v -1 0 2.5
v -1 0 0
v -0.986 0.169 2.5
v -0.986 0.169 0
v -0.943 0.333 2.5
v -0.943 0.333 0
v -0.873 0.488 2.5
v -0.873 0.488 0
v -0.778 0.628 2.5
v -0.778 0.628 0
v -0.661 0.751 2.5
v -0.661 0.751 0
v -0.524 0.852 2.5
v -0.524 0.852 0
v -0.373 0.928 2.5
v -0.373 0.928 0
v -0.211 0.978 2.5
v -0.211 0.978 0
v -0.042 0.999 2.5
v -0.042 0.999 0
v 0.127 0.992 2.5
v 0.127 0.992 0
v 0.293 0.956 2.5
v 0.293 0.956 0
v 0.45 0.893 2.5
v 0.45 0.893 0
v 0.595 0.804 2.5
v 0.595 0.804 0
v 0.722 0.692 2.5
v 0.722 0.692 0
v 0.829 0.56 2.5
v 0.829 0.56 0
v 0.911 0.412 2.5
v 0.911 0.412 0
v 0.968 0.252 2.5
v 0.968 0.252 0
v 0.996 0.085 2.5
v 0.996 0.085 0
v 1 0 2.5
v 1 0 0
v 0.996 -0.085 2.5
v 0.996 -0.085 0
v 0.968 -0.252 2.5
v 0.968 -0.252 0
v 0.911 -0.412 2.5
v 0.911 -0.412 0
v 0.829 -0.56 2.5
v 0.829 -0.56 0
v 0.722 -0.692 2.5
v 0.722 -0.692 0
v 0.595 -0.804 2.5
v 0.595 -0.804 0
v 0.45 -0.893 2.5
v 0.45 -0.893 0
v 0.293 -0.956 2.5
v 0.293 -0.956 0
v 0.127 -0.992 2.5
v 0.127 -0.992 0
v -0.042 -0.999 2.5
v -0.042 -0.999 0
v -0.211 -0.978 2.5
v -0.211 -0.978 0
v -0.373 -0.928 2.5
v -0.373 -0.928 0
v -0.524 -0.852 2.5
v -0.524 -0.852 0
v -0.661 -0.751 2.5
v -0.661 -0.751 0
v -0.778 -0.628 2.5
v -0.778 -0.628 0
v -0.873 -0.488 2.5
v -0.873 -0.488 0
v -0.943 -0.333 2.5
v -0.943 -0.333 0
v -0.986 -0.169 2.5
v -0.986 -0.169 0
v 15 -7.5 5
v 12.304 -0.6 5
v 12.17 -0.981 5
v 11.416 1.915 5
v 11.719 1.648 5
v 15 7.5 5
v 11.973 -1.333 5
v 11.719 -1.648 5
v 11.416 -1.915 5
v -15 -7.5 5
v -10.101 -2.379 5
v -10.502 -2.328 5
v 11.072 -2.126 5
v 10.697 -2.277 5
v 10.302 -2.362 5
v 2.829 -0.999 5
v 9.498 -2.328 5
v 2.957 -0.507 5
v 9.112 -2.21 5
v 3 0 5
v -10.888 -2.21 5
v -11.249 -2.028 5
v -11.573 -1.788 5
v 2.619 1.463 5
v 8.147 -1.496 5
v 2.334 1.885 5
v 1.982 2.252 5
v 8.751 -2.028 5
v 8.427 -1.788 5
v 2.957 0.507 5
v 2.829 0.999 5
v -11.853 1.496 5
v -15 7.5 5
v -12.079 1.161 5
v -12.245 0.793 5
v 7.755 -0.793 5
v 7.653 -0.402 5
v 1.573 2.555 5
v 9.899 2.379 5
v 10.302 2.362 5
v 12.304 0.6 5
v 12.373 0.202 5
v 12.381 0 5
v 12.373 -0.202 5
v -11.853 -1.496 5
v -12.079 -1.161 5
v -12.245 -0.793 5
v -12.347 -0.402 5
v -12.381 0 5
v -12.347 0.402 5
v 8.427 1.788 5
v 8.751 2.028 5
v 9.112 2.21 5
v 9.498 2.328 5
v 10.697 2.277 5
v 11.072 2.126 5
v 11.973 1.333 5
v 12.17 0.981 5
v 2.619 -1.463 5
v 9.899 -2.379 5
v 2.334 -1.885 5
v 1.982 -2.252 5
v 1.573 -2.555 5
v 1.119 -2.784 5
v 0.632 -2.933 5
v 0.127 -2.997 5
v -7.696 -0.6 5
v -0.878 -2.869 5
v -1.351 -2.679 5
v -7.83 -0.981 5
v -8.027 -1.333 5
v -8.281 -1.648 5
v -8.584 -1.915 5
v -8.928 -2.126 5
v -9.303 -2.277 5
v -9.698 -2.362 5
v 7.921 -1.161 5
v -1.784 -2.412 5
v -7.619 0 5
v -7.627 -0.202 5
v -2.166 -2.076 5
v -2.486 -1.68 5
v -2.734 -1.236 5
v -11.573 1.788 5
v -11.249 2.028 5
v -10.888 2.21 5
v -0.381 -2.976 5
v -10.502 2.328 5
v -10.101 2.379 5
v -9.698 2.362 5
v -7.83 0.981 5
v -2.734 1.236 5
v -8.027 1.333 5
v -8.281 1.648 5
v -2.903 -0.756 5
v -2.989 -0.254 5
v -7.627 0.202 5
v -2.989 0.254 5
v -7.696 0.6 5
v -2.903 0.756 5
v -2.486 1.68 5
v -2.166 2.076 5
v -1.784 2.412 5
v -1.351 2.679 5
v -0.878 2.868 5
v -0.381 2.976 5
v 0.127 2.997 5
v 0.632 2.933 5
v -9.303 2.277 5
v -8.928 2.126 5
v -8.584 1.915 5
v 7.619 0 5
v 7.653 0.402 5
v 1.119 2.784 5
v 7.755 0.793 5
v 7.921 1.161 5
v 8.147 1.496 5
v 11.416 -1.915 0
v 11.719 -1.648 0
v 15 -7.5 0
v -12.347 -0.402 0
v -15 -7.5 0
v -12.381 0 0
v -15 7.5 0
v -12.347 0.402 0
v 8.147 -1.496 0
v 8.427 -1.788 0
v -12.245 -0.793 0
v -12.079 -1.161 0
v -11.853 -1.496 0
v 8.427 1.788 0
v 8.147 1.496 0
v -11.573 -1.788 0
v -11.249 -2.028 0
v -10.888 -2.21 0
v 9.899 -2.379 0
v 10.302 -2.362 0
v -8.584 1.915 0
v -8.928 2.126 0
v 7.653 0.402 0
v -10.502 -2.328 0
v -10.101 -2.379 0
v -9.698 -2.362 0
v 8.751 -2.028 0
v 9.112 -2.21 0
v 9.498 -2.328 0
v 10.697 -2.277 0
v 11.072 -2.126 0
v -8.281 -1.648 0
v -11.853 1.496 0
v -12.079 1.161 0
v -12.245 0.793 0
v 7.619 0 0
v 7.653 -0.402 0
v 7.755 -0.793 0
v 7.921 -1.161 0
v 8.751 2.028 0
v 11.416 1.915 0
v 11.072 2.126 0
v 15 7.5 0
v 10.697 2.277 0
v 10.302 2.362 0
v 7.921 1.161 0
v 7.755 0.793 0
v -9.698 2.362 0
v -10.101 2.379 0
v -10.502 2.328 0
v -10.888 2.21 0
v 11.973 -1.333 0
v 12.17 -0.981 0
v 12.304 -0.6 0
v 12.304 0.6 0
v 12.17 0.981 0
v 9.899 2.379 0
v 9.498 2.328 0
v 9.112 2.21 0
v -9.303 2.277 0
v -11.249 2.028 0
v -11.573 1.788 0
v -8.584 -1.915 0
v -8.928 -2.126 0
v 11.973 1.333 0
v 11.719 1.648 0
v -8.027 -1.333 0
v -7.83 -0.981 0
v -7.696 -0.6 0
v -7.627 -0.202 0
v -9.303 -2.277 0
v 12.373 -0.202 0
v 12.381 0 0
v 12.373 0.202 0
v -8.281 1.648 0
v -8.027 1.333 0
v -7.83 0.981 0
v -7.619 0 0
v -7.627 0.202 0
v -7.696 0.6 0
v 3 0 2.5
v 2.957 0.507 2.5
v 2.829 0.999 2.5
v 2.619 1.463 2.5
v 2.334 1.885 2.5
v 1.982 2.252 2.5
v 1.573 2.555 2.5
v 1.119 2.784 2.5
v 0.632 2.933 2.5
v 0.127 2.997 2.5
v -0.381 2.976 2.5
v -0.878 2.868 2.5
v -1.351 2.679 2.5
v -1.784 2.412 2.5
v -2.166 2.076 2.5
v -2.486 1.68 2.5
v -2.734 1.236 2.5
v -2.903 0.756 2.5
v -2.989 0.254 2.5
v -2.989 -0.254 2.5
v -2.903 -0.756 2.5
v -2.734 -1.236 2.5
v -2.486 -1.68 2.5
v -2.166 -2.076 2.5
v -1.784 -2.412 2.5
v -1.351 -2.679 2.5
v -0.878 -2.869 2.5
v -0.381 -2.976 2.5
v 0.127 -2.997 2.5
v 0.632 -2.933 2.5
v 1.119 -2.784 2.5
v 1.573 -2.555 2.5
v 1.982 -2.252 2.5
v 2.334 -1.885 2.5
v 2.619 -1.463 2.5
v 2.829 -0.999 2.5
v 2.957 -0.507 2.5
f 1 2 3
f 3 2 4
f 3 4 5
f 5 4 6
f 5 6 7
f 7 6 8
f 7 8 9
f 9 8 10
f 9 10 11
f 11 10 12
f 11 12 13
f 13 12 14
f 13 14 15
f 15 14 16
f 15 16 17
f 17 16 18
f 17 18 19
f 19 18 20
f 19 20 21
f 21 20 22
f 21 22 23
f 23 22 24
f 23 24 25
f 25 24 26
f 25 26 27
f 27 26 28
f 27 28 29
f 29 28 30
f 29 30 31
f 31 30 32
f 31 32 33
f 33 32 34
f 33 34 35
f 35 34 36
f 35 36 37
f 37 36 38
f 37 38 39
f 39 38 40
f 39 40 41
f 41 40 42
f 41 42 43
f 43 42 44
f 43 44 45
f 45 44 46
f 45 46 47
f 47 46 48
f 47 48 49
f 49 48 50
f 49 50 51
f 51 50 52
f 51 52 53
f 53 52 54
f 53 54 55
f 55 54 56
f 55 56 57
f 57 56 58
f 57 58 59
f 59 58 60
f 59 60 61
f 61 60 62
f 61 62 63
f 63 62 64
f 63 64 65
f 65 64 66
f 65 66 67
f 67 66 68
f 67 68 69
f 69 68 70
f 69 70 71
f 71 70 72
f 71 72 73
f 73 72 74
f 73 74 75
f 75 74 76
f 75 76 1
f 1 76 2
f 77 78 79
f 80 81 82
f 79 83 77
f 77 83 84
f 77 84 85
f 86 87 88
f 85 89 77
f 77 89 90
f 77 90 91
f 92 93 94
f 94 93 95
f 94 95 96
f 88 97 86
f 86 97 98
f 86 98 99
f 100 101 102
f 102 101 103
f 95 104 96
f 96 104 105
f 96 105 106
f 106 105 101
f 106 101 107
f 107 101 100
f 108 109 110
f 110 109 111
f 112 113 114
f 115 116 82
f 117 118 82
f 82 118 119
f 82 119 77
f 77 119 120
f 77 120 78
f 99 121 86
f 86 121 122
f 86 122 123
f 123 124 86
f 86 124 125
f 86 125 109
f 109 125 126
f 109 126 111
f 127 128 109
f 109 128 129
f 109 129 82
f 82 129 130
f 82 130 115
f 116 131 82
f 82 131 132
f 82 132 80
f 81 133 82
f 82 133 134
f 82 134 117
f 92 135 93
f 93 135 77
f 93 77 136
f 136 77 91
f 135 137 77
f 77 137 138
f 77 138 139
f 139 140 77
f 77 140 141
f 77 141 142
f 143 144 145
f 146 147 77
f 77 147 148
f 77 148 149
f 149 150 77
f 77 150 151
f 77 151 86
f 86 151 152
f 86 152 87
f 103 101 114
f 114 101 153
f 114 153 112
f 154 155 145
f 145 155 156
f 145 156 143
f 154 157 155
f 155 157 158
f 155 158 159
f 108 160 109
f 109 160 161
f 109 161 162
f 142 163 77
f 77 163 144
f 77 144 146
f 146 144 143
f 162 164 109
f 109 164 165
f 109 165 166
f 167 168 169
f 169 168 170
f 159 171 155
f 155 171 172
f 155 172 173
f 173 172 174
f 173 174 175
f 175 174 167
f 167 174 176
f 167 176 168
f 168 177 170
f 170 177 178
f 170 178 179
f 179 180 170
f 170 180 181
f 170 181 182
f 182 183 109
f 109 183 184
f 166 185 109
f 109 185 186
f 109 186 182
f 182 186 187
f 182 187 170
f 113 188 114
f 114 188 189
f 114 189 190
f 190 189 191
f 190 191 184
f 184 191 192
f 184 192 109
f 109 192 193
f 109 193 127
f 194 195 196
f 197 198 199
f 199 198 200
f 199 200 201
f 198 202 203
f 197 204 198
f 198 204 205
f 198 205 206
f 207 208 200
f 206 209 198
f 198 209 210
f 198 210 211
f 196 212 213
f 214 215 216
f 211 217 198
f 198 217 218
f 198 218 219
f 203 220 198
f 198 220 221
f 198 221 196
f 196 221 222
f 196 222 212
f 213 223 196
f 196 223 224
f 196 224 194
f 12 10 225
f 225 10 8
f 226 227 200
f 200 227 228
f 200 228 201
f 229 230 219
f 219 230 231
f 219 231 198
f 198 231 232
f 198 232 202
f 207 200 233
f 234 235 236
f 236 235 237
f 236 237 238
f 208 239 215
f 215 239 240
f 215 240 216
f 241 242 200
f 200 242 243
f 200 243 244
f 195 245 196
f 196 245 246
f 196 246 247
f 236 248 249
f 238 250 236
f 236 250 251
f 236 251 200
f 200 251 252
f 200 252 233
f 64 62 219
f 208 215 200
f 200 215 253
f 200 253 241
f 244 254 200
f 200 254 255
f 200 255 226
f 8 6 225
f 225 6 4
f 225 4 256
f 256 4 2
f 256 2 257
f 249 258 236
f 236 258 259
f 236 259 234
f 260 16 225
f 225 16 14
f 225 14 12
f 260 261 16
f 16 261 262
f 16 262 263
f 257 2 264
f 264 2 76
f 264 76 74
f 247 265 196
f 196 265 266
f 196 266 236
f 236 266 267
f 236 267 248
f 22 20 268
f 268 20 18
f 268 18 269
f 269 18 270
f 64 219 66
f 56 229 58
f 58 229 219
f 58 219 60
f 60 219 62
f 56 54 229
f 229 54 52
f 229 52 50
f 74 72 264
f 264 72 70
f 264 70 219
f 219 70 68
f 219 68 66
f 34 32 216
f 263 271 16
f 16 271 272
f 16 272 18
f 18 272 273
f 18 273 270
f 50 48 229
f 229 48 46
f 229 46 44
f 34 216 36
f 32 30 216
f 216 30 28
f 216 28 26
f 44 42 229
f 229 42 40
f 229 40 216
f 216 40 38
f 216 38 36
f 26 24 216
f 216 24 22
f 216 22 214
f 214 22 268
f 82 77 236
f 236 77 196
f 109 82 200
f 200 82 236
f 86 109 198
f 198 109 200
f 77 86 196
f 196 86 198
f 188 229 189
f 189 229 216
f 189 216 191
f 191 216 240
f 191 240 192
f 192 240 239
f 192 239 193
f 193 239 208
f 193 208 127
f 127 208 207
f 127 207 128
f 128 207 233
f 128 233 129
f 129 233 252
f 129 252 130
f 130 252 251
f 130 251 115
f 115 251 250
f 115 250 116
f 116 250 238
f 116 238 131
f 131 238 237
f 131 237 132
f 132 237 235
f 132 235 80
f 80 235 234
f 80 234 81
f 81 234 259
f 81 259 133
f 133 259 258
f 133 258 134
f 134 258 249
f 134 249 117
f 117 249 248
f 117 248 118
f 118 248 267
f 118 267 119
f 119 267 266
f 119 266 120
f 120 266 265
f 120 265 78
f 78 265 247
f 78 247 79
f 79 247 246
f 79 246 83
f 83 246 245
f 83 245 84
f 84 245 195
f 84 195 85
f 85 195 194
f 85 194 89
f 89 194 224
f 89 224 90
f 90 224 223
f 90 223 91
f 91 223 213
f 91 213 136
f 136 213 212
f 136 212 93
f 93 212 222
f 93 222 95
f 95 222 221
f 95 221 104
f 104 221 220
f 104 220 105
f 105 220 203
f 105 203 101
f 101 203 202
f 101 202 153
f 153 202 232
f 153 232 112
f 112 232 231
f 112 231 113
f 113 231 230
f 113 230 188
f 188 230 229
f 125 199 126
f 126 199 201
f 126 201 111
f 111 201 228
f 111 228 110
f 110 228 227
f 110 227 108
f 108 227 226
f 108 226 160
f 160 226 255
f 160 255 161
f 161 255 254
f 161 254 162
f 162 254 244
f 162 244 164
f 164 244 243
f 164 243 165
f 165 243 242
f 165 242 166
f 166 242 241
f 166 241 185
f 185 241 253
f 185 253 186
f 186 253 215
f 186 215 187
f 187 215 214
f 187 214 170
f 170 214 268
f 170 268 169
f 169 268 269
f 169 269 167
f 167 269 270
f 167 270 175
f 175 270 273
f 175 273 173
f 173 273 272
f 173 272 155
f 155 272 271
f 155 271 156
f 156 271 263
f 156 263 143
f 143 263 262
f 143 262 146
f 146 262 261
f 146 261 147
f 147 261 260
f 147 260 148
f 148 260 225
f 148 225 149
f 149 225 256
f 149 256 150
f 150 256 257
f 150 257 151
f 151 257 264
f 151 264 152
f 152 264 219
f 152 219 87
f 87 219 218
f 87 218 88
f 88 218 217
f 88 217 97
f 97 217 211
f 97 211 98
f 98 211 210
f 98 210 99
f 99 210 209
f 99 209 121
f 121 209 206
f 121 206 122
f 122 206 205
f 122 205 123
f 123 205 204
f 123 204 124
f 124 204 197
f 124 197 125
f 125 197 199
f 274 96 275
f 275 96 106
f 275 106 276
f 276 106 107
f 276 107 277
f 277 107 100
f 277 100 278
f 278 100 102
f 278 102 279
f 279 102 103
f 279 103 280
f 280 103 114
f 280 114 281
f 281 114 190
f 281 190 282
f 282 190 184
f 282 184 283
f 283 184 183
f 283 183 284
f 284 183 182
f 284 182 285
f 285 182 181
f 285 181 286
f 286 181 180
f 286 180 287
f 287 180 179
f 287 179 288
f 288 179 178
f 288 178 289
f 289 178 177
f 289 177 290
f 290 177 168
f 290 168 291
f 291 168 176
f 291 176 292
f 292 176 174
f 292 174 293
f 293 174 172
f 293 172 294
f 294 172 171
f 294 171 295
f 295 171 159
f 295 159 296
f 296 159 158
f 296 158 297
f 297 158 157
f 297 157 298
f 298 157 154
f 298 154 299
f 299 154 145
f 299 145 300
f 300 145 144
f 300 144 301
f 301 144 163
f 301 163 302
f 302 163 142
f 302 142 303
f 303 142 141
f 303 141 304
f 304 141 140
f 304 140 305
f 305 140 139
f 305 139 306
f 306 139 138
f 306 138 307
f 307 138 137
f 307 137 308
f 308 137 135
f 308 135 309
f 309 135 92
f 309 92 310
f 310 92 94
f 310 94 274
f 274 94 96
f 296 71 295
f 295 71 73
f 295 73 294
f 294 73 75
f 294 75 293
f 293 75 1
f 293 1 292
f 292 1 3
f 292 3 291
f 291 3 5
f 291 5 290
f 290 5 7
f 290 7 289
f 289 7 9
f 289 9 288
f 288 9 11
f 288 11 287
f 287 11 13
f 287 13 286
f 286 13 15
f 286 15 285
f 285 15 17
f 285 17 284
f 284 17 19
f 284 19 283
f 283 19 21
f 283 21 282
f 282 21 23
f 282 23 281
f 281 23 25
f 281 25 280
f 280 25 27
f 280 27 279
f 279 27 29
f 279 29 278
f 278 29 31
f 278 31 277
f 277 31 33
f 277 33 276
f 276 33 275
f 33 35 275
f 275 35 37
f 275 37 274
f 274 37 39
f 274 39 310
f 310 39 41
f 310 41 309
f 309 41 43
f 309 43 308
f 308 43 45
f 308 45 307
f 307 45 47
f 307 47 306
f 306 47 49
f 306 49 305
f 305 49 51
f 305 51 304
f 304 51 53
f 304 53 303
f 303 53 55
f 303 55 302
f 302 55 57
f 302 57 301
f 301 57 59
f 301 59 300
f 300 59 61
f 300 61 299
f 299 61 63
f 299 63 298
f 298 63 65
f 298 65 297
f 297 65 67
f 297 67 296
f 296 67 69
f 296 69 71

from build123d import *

# Parameters (mm, degrees)
SKETCH1_W           = 30
SKETCH1_H           = 15
SKETCH1_R           = 1
SKETCH1_R_2         = 2.38125
BOSS_EXTRUDE1_DEPTH = 5
SKETCH2_R           = 3
CUT_EXTRUDE1_DEPTH  = 2.5


with BuildPart() as part:
    # Sketch1 → Boss-Extrude1 (new body)
    with BuildSketch(Plane.XY):
        Rectangle(SKETCH1_W, SKETCH1_H)
        Circle(SKETCH1_R, mode=Mode.SUBTRACT)
        with Locations((10, 0)):
            Circle(SKETCH1_R_2, mode=Mode.SUBTRACT)
        with Locations((-10, 0)):
            Circle(SKETCH1_R_2, mode=Mode.SUBTRACT)
    extrude(amount=BOSS_EXTRUDE1_DEPTH)

    # Sketch2 → Cut-Extrude1 (cut)
    with BuildSketch(Plane.XY.offset(5)):
        Circle(SKETCH2_R)
    extrude(amount=-CUT_EXTRUDE1_DEPTH, mode=Mode.SUBTRACT)


solid = part.part
